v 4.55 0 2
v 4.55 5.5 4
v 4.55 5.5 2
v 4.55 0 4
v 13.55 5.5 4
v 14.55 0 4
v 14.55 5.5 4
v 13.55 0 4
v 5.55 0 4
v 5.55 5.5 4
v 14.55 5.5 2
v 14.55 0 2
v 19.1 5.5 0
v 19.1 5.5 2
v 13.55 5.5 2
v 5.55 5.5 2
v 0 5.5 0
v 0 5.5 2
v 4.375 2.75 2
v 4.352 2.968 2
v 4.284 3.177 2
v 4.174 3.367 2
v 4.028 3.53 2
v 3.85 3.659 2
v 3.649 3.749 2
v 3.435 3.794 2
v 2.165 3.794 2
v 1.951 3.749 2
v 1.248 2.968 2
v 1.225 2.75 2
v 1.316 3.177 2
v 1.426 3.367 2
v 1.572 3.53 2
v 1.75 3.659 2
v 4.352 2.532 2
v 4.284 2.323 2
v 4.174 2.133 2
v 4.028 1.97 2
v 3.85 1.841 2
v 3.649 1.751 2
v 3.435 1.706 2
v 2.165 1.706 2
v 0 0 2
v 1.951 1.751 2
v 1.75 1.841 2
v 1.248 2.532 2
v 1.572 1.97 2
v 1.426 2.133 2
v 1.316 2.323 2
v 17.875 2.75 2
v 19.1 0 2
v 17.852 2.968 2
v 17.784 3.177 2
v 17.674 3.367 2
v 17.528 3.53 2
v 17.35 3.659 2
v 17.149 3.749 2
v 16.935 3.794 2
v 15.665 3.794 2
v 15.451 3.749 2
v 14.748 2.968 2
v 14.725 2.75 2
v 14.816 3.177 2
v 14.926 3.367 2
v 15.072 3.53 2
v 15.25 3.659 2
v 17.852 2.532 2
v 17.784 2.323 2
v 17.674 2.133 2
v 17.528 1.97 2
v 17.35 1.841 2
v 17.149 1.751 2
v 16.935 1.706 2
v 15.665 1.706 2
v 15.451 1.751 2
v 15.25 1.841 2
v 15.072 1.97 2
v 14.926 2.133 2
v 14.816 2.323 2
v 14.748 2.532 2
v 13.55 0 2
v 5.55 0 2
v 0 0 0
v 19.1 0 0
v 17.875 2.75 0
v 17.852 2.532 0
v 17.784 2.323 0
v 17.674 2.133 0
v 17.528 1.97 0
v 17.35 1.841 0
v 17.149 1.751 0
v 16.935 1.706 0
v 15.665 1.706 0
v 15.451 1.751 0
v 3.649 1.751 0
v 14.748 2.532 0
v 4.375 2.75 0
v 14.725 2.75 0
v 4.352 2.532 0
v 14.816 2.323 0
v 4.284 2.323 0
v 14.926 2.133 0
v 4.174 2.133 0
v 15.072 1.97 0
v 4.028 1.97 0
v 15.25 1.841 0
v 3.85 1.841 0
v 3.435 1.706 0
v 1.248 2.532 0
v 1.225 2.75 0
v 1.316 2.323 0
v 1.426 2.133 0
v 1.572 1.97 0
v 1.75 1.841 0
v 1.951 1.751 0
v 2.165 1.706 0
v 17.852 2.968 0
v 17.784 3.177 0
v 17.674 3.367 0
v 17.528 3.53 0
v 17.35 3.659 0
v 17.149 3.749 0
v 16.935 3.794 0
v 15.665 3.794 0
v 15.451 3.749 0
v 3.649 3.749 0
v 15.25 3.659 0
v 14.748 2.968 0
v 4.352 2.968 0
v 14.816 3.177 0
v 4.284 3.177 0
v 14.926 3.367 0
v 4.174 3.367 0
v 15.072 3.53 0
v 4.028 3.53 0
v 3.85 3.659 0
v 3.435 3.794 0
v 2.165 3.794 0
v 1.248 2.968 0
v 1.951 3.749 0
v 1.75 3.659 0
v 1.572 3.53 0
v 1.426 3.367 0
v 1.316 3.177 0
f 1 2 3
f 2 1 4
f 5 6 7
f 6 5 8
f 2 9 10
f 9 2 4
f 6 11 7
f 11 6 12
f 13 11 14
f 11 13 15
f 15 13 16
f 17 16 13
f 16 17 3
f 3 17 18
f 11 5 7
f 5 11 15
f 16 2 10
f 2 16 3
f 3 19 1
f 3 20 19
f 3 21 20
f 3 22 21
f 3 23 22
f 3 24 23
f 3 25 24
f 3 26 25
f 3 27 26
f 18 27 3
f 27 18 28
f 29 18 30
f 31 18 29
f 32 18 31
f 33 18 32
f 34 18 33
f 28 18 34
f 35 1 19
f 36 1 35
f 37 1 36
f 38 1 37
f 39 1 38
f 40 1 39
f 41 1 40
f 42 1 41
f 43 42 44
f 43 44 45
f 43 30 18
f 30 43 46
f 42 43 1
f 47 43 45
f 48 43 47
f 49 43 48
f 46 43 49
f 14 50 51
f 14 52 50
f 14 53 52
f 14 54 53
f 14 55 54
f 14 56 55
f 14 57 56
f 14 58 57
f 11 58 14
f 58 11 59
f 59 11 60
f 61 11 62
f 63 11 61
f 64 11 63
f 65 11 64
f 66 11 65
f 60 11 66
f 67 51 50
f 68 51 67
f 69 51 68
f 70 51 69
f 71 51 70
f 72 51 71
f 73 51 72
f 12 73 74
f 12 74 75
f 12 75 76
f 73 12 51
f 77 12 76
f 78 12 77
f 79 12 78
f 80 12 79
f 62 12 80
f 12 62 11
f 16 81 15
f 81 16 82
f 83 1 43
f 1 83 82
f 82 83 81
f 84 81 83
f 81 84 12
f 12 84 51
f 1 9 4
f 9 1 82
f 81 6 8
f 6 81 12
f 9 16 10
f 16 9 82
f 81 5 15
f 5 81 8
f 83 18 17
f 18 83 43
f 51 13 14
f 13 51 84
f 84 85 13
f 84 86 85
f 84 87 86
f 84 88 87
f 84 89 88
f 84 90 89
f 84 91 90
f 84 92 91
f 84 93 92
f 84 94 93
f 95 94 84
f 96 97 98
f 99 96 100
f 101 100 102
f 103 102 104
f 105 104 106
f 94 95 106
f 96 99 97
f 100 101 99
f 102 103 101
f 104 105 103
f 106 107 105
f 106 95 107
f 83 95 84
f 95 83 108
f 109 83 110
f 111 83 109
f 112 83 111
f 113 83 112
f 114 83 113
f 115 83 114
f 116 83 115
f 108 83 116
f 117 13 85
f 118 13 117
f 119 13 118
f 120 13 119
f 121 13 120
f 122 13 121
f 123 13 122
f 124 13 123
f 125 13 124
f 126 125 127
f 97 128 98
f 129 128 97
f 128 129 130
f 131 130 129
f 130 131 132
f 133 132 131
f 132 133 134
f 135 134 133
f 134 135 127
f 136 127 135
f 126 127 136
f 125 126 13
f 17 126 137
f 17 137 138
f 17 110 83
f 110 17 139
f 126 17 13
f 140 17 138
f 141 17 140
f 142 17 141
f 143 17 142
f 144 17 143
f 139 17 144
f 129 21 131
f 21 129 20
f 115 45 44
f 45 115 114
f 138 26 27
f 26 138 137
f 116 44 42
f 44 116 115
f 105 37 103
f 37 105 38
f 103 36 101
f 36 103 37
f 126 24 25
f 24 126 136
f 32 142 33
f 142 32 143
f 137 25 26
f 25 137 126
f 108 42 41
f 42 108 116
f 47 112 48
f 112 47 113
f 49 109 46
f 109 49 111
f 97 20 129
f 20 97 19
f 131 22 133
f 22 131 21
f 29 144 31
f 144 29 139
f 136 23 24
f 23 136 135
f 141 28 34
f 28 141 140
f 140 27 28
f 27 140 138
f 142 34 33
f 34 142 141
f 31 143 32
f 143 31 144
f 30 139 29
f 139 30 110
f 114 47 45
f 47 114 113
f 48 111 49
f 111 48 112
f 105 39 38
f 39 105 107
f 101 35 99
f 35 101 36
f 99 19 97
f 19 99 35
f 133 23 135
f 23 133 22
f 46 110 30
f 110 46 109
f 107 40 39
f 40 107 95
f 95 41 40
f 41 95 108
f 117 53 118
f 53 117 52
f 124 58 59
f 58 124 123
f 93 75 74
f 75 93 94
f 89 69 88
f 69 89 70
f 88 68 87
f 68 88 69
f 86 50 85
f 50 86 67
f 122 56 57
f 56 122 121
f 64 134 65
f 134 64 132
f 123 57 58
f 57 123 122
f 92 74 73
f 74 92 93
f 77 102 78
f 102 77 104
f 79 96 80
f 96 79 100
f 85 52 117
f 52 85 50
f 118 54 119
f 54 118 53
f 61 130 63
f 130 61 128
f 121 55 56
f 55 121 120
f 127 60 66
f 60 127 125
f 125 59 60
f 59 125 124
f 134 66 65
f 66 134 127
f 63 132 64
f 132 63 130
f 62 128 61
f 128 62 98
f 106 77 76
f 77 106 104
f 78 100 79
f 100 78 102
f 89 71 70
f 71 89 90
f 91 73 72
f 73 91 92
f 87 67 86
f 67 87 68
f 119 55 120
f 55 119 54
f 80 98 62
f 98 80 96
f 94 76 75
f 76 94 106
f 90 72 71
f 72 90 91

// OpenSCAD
x = 8;
h = 5.5;
y = h;

$fn = 30;

module cyl(d,h) {
	hull() {
		translate([d/4,0]) cylinder(d=d,h=h);
		translate([-d/4,0]) cylinder(d=d,h=h);
	}
}

difference() {
	cube([19.1,y,2]);

	dist = (19.1-13.5)/2;
	#translate([dist,y/2]) cyl(d=2.1,h=2);
	#translate([19.1-dist,y/2]) cyl(d=2.1,h=2);
}

difference() {
	
	translate([(19.1-x-2*1)/2,0,2]) cube([x+2*1,y,2]);
	translate([(19.1-x)/2,0,2]) cube([x,y,2]);
	
}
